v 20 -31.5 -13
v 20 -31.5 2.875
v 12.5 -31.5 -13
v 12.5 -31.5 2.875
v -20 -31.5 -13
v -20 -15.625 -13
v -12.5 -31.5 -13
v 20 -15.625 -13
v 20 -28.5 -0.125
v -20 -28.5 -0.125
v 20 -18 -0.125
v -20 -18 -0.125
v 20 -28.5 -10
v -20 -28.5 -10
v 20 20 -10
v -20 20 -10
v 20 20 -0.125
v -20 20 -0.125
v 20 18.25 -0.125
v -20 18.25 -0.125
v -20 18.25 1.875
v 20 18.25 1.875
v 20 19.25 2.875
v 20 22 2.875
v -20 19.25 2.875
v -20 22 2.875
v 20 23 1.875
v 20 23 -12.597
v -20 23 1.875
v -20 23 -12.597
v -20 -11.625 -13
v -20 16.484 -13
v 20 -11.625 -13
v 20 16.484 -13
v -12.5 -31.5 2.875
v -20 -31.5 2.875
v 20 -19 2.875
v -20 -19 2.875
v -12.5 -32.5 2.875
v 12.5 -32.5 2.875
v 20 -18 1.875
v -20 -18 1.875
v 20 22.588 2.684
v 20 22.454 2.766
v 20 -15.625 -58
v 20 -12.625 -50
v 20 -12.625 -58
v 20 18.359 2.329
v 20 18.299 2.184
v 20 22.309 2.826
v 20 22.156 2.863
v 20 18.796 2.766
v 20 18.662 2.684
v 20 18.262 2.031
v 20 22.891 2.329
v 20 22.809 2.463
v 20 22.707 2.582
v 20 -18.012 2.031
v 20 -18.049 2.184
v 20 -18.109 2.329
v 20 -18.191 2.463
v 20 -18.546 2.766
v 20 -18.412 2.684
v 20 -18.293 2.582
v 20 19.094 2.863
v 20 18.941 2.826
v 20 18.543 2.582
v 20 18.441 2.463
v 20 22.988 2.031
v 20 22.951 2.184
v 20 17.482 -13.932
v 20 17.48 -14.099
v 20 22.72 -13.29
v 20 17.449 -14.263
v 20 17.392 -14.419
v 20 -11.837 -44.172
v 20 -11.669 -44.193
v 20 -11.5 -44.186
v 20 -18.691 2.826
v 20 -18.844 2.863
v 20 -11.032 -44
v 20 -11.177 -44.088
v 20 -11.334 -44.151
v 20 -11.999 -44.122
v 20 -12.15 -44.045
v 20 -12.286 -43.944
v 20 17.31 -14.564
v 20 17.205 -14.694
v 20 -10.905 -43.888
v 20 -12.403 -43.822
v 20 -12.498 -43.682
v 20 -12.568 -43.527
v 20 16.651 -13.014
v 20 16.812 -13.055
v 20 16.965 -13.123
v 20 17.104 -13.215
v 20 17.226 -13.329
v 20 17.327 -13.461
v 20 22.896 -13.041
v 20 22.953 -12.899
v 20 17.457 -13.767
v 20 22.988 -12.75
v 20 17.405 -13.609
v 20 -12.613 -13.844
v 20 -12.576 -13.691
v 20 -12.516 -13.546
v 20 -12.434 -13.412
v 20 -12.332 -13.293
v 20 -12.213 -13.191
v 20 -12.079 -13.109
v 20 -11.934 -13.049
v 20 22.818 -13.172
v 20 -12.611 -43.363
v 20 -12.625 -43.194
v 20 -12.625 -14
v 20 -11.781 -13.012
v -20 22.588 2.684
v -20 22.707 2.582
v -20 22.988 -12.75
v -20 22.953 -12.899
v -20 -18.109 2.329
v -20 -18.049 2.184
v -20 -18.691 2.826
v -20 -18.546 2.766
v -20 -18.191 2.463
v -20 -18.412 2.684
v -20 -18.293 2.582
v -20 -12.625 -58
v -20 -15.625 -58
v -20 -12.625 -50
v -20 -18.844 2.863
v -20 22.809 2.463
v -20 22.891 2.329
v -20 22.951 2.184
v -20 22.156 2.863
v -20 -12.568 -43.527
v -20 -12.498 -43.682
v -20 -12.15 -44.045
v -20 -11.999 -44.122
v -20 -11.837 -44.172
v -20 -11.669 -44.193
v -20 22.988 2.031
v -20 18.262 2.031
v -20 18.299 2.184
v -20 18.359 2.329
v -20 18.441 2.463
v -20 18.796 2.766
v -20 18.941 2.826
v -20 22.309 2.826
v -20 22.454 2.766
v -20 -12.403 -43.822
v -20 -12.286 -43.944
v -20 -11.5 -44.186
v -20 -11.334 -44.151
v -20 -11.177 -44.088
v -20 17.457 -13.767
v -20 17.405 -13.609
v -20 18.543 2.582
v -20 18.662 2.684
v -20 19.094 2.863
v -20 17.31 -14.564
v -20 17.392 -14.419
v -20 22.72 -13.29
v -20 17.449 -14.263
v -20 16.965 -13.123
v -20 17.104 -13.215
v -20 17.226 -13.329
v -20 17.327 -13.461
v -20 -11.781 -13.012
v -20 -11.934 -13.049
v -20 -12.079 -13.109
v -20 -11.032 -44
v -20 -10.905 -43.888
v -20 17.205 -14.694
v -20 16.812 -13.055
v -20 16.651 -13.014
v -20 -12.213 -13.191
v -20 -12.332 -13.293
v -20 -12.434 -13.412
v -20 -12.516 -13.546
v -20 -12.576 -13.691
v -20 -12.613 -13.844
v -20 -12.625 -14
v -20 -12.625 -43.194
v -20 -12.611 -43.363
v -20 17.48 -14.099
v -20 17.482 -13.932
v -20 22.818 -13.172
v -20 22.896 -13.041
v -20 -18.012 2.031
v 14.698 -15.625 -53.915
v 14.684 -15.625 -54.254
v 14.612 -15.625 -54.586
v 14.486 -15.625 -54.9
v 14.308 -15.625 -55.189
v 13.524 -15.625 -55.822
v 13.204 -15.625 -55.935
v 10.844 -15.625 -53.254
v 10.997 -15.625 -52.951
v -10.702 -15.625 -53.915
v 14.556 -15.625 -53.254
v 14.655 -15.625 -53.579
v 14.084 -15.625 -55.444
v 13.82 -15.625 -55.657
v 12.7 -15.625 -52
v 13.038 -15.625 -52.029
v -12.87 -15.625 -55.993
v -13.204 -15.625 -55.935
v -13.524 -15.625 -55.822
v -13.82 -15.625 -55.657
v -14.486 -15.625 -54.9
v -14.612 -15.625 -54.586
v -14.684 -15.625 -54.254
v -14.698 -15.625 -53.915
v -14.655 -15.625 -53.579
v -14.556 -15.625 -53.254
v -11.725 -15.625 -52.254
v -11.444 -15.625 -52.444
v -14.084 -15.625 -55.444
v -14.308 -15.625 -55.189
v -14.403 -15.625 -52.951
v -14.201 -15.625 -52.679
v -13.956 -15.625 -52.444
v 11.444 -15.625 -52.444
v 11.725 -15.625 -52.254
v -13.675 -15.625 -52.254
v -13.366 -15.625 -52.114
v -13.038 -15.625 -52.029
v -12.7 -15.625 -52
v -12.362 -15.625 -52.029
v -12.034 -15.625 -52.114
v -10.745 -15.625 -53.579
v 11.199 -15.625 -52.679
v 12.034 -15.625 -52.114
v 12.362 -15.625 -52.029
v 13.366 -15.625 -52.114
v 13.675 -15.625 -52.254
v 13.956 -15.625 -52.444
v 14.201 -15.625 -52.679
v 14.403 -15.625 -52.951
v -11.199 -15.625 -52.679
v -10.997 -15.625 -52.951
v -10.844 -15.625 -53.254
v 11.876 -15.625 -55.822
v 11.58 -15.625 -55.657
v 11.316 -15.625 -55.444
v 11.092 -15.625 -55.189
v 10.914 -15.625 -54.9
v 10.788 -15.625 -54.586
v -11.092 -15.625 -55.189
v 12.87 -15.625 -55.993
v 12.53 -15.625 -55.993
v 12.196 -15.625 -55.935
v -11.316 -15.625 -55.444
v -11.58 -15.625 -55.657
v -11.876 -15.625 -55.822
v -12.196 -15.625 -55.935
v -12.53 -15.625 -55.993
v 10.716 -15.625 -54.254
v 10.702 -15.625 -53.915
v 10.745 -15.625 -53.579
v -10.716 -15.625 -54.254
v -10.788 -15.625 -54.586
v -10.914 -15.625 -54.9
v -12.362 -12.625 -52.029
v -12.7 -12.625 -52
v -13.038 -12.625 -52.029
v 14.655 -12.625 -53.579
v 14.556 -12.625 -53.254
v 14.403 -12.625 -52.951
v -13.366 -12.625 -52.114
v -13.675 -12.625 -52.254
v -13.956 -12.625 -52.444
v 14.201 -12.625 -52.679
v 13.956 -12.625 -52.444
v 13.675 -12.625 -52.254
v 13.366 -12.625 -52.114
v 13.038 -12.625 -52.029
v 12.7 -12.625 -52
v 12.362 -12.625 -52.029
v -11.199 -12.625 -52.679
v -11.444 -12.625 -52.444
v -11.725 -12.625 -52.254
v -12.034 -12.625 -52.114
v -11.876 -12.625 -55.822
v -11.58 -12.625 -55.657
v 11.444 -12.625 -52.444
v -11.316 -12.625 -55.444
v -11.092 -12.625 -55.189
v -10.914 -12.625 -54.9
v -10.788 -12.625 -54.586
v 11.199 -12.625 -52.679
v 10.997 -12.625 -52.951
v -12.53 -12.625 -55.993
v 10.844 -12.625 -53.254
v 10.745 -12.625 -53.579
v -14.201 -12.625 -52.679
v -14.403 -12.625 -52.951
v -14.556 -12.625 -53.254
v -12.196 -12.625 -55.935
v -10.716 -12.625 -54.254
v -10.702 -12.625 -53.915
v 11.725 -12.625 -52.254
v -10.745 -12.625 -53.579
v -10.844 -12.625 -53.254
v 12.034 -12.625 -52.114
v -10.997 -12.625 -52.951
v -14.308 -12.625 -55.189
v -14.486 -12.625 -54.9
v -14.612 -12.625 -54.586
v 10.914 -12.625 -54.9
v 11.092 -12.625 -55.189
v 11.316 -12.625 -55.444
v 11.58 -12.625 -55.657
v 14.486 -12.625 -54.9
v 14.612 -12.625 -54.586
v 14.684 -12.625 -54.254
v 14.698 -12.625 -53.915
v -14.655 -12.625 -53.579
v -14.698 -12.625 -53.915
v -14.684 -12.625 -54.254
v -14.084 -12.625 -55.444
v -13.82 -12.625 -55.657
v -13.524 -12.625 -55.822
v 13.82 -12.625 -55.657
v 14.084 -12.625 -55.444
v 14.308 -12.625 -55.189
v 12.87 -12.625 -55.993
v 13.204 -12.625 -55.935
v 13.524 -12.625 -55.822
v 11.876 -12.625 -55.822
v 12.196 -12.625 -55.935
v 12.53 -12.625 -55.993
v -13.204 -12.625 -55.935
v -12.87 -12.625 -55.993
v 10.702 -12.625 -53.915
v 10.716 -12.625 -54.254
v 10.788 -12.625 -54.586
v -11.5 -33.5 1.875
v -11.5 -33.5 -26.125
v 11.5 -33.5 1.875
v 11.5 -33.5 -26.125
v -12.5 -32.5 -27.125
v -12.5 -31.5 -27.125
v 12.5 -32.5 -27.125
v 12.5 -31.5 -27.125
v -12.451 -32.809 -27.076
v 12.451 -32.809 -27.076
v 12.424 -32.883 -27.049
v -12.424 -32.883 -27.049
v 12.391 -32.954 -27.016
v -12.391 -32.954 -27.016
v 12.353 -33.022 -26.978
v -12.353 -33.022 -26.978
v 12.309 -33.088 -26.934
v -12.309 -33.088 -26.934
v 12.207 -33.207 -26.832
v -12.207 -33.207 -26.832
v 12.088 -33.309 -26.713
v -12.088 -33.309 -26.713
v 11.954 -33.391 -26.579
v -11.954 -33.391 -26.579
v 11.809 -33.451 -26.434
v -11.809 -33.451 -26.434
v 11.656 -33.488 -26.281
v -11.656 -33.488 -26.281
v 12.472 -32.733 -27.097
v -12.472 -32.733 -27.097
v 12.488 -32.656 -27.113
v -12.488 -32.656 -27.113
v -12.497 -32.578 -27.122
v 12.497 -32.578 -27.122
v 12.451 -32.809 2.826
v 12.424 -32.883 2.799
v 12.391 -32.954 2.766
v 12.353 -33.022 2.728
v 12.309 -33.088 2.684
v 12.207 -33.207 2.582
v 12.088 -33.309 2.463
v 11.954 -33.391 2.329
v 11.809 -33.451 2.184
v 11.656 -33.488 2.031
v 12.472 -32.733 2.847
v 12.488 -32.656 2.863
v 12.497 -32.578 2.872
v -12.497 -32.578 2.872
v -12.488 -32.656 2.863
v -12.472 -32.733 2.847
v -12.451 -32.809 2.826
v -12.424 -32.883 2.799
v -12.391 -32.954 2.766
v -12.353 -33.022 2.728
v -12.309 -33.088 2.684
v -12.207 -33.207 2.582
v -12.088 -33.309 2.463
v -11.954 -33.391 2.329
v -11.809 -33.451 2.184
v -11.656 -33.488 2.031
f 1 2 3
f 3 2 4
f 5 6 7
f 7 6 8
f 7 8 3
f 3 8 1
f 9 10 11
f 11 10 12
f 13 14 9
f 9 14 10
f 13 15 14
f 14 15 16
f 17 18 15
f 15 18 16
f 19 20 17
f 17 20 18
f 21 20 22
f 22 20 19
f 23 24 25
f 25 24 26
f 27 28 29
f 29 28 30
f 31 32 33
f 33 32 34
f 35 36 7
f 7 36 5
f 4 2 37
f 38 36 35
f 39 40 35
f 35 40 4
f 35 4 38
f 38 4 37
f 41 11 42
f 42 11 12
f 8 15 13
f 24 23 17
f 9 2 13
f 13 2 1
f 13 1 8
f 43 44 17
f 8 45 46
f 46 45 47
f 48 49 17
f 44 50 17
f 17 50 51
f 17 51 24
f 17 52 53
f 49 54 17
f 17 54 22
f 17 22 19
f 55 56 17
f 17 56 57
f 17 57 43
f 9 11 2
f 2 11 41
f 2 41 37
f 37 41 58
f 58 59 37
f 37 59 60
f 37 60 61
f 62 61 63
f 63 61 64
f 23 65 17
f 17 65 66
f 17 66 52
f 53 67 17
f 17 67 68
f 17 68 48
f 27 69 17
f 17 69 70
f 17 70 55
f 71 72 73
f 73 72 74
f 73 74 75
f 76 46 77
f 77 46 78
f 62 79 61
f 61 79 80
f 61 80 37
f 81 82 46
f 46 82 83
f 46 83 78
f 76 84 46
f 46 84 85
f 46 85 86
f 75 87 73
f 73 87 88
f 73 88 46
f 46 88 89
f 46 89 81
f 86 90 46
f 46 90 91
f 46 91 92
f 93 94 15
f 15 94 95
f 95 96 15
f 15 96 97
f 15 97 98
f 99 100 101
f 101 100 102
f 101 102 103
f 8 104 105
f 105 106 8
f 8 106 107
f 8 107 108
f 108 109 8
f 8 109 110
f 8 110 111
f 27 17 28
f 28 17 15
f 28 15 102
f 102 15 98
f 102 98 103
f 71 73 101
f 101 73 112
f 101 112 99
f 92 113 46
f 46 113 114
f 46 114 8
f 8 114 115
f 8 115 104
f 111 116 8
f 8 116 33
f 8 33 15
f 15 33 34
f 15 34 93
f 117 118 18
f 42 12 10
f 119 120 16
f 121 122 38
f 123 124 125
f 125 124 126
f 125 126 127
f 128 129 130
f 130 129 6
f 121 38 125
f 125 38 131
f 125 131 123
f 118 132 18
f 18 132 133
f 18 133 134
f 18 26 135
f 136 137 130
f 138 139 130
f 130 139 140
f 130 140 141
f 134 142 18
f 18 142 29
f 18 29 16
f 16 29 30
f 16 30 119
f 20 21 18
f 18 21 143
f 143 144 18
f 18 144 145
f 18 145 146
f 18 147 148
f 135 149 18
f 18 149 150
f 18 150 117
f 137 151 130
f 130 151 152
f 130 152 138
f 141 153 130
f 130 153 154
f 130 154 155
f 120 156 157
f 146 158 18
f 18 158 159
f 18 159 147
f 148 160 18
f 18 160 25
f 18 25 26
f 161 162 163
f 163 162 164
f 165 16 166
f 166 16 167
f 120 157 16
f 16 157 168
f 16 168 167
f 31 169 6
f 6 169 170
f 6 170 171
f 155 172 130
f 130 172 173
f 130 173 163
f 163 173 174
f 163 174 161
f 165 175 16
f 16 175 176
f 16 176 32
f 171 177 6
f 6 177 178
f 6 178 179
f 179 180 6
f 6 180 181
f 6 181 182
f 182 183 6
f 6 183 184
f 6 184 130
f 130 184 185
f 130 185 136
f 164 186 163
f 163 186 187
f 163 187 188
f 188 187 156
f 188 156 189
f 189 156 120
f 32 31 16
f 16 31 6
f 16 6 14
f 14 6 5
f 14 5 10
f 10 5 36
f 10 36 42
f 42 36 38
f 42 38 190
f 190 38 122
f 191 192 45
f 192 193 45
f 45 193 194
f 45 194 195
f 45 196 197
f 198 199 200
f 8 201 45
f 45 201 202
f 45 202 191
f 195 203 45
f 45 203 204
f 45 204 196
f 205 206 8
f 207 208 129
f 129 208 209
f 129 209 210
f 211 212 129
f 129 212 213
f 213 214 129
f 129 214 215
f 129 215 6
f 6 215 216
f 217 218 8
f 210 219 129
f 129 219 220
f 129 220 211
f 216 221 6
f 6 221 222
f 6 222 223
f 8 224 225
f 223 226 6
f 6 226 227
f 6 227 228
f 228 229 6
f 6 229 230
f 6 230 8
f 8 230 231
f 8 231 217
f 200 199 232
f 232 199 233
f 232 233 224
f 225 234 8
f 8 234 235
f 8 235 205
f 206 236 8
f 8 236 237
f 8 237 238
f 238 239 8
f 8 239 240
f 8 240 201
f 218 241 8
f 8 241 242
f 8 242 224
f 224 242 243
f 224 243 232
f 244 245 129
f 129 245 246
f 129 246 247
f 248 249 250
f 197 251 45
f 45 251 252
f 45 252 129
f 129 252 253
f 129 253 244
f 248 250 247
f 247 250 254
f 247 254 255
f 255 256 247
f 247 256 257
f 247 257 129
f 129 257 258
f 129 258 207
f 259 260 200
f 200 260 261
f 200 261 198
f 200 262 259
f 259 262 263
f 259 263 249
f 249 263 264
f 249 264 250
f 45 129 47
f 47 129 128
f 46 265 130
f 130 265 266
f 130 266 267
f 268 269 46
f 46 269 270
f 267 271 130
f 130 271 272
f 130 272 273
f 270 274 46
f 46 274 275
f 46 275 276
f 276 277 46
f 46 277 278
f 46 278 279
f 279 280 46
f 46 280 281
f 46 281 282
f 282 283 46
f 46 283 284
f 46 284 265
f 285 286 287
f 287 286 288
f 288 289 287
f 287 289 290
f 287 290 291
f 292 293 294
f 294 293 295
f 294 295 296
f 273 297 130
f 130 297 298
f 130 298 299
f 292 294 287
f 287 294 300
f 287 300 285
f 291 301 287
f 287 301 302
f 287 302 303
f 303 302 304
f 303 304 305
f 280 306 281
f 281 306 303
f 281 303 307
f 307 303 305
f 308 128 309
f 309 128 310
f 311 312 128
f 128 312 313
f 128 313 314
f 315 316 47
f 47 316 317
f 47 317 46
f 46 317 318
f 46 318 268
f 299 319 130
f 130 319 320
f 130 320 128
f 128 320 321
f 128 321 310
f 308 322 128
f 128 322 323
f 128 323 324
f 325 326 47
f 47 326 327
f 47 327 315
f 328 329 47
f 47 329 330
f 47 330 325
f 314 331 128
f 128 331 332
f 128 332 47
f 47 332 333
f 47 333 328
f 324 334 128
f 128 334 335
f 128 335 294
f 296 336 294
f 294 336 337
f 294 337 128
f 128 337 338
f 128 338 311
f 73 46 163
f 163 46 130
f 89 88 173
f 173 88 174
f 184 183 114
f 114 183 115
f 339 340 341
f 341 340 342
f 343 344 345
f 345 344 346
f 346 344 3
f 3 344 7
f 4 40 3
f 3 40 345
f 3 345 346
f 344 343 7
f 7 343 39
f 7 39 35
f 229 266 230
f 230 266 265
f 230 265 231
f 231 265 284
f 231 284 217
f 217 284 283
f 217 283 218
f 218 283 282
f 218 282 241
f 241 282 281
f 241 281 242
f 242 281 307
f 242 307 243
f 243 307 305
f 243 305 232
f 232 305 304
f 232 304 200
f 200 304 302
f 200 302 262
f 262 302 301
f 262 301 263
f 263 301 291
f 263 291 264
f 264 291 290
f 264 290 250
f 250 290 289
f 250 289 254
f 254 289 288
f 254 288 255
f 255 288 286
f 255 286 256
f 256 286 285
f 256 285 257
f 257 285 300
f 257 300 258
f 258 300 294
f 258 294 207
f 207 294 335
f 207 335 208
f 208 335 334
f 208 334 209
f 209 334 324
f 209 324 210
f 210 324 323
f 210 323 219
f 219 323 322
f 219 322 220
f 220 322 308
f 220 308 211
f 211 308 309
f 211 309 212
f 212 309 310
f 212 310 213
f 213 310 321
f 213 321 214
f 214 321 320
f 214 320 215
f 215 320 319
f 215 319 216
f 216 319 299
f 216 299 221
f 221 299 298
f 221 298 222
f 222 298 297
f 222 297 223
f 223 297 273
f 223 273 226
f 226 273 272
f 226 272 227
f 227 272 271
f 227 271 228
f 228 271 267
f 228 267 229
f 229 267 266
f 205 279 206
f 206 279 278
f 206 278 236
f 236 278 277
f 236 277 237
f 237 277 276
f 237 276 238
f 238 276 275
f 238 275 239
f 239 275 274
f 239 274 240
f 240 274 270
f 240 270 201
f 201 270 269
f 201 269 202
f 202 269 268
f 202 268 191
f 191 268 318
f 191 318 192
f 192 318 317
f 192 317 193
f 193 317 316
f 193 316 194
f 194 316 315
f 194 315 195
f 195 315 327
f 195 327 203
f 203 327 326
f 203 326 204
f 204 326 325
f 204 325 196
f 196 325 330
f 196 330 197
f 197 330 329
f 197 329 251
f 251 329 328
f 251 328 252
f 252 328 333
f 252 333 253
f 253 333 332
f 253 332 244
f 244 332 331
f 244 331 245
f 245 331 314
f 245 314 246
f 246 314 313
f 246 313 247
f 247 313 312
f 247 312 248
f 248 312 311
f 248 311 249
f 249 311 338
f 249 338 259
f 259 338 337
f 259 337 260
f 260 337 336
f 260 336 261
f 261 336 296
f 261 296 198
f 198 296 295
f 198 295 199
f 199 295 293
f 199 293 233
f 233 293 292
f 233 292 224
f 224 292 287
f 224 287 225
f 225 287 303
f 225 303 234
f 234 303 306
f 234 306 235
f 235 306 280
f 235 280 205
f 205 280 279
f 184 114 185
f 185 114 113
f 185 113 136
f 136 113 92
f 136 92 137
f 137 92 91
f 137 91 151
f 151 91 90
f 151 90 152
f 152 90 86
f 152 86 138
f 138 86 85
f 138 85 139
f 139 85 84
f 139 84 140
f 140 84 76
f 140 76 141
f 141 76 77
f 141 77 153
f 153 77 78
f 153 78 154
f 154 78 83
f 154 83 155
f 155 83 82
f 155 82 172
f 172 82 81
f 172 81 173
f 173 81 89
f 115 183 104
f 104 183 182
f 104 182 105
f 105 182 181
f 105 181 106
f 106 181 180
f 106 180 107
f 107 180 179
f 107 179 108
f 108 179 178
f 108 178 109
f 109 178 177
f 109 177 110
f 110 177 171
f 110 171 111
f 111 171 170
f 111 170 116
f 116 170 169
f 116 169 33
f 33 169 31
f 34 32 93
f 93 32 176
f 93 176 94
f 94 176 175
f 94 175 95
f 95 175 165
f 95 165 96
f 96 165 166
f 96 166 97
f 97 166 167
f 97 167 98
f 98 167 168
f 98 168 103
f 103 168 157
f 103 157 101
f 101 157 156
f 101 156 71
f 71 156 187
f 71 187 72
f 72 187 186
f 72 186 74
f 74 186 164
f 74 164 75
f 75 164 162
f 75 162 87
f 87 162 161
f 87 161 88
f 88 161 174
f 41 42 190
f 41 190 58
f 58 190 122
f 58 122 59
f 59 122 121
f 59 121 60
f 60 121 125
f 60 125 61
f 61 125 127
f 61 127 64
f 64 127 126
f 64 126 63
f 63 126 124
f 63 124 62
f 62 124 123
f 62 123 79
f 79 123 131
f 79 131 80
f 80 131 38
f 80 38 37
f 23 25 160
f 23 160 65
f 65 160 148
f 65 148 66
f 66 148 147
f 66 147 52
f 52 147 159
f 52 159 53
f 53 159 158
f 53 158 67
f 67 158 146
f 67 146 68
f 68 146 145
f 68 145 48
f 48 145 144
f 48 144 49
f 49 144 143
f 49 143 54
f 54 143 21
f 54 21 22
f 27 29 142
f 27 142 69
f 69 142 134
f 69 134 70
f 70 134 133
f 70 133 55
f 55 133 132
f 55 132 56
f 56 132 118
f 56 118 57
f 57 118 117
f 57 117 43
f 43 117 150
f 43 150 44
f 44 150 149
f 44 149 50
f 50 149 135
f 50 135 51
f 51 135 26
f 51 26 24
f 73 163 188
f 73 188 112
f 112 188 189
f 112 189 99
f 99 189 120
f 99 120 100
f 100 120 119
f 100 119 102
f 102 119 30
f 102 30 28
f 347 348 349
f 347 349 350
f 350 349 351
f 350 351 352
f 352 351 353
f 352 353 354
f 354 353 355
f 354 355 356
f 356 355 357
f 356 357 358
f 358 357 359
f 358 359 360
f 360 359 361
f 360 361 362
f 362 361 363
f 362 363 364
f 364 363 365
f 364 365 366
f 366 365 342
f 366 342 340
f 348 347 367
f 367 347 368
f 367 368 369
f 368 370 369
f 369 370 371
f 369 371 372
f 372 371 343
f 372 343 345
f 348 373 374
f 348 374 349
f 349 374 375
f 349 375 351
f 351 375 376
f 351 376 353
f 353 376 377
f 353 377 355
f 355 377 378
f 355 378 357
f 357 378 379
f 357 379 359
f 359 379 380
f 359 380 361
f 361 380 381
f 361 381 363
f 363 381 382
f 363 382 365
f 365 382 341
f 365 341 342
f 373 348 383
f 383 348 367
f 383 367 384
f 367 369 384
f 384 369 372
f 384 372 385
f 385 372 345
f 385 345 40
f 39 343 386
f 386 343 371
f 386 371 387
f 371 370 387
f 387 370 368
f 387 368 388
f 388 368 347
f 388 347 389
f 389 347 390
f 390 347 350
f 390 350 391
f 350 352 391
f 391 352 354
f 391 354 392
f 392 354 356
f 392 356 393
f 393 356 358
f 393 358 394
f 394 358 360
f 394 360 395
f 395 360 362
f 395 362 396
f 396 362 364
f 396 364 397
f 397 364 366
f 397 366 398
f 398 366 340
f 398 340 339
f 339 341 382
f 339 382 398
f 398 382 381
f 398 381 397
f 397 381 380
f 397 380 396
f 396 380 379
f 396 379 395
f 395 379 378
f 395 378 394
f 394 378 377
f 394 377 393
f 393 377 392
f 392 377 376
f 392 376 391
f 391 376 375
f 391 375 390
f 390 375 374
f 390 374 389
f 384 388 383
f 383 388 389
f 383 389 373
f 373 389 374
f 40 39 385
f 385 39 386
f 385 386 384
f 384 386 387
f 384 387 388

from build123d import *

# Parameters (mm, degrees)
SKETCH1_W                       = 36
SKETCH1_H                       = 36
BOSS_EXTRUDE1_DEPTH             = 13.5
SKETCH1_3_W                     = 40
SKETCH1_3_H                     = 48.5
BOSS_EXTRUDE2_DEPTH             = 10
FILLET1_R                       = 3.5
FILLET2_R                       = 3.5
FILLET3_R                       = 1
FILLET4_R                       = 1
FILLET5_R                       = 1
BOSS_EXTRUDE3_REACH             = 39.343
BOSS_EXTRUDE3_DIRECTION_2_REACH = 39.343
BOSS_EXTRUDE4_REACH             = 41.68
BOSS_EXTRUDE4_DIRECTION_2_REACH = 41.68
BOSS_EXTRUDE5_DEPTH             = 12.5
SKETCH9_R                       = 2
CUT_EXTRUDE3_DEPTH              = 71.944630699
FILLET6_R                       = 1
FILLET7_R                       = 1


with BuildPart() as part:
    # Sketch1 → Boss-Extrude1 (new body)
    with BuildSketch(Plane.XY):
        Rectangle(SKETCH1_W, SKETCH1_H)
    extrude(amount=BOSS_EXTRUDE1_DEPTH)

    # Fillet2
    fillet2_edges = [part.edges().sort_by_distance(p)[0] for p in [
        (18, 18, 6.75),
        (18, -18, 6.75),
        (-18, -18, 6.75),
        (-18, 18, 6.75),
    ]]
    fillet(fillet2_edges, radius=FILLET2_R)

    # Fillet5
    fillet5_edges = [part.edges().sort_by_distance(p)[0] for p in [
        (-16.974873734, 16.974873734, 13.5),
        (0, 18, 13.5),
        (16.974873734, 16.974873734, 13.5),
        (18, 0, 13.5),
        (16.974873734, -16.974873734, 13.5),
        (0, -18, 13.5),
        (-16.974873734, -16.974873734, 13.5),
        (-18, 0, 13.5),
    ]]
    fillet(fillet5_edges, radius=FILLET5_R)


with BuildPart() as body_2:
    # Sketch1<3> → Boss-Extrude2 (new body)
    with BuildSketch(Plane.XY):
        with Locations((0, -4.25)):
            Rectangle(SKETCH1_3_W, SKETCH1_3_H)
    extrude(amount=-BOSS_EXTRUDE2_DEPTH)

    # Fillet1
    fillet1_edges = [body_2.edges().sort_by_distance(p)[0] for p in [
        (20, 20, -5),
        (-20, -28.5, -5),
        (20, -28.5, -5),
        (-20, 20, -5),
    ]]
    fillet(fillet1_edges, radius=FILLET1_R)

    # Fillet3
    fillet3_edges = [body_2.edges().sort_by_distance(p)[0] for p in [
        (-18.974873734, 18.974873734, 0),
        (0, 20, 0),
        (18.974873734, 18.974873734, 0),
        (20, -4.25, 0),
        (18.974873734, -27.474873734, 0),
        (0, -28.5, 0),
        (-18.974873734, -27.474873734, 0),
        (-20, -4.25, 0),
    ]]
    fillet(fillet3_edges, radius=FILLET3_R)

    # Fillet4
    fillet4_edges = [body_2.edges().sort_by_distance(p)[0] for p in [
        (-18.974873734, 18.974873734, -10),
        (-20, -4.25, -10),
        (-18.974873734, -27.474873734, -10),
        (0, -28.5, -10),
        (18.974873734, -27.474873734, -10),
        (20, -4.25, -10),
        (18.974873734, 18.974873734, -10),
        (0, 20, -10),
    ]]
    fillet(fillet4_edges, radius=FILLET4_R)


with BuildPart() as body_3:

    # Boss-Extrude3: up to this face of the body (flat: up to its plane)
    boss_extrude3_end = Plane(body_2.part.faces().sort_by_distance((20, -4.25, -5))[0])
    # Sketch2 → Boss-Extrude3 (new, up to the picked face)
    with BuildSketch(Plane(origin=(0, 0, 0), x_dir=(0, 0, -1), z_dir=(1, 0, 0)), mode=Mode.PRIVATE) as boss_extrude3_sk1:
        Polygon((-2.875, -18), (-2.875, -31.5), (13, -31.5), (13, 20), (13, 23), (-2.875, 23), (-2.875, 18.25), (0.125, 18.25), (0.125, 20), (10, 20), (10, -28.5), (0.125, -28.5), (0.125, -18), align=None)
    boss_extrude3_tool1 = split(extrude(boss_extrude3_sk1.sketch, amount=BOSS_EXTRUDE3_REACH, mode=Mode.PRIVATE), bisect_by=boss_extrude3_end, keep=Keep.BOTH, mode=Mode.PRIVATE)
    add(boss_extrude3_tool1.solids().sort_by(Axis((0, -24.75, 2.30735), (1, 0, 0)))[0])


    # Boss-Extrude3 direction 2: up to this face of the body (flat: up to its plane)
    boss_extrude3_direction_2_end = Plane(body_2.part.faces().sort_by_distance((-20, -4.25, -5))[0])
    # Sketch2 → Boss-Extrude3 direction 2 (add, up to the picked face)
    with BuildSketch(Plane(origin=(0, 0, 0), x_dir=(0, 0, -1), z_dir=(1, 0, 0)), mode=Mode.PRIVATE) as boss_extrude3_direction_2_sk1:
        Polygon((-2.875, -18), (-2.875, -31.5), (13, -31.5), (13, 20), (13, 23), (-2.875, 23), (-2.875, 18.25), (0.125, 18.25), (0.125, 20), (10, 20), (10, -28.5), (0.125, -28.5), (0.125, -18), align=None)
    boss_extrude3_direction_2_tool1 = split(extrude(boss_extrude3_direction_2_sk1.sketch, amount=-BOSS_EXTRUDE3_DIRECTION_2_REACH, mode=Mode.PRIVATE), bisect_by=boss_extrude3_direction_2_end, keep=Keep.BOTH, mode=Mode.PRIVATE)
    add(boss_extrude3_direction_2_tool1.solids().sort_by(Axis((0, -24.75, 2.30735), (-1, 0, 0)))[0])


    # Boss-Extrude4: up to this face of the body (flat: up to its plane)
    boss_extrude4_end = Plane(body_2.part.faces().sort_by_distance((20, -4.25, -5))[0])
    # Sketch3 → Boss-Extrude4 (add, up to the picked face)
    with BuildSketch(Plane(origin=(0, 0, 0), x_dir=(0, 0, -1), z_dir=(1, 0, 0)), mode=Mode.PRIVATE) as boss_extrude4_sk1:
        Polygon((58, -15.625), (10, -15.625), (10, 23), (13, 23), (50, -12.625), (58, -12.625), align=None)
        Polygon((13, 18.835445964), (13, -12.625), (45.674708791, -12.625), align=None, mode=Mode.SUBTRACT)
    boss_extrude4_tool1 = split(extrude(boss_extrude4_sk1.sketch, amount=BOSS_EXTRUDE4_REACH, mode=Mode.PRIVATE), bisect_by=boss_extrude4_end, keep=Keep.BOTH, mode=Mode.PRIVATE)
    add(boss_extrude4_tool1.solids().sort_by(Axis((0, -15.008892, -34), (1, 0, 0)))[0])


    # Boss-Extrude4 direction 2: up to this face of the body (flat: up to its plane)
    boss_extrude4_direction_2_end = Plane(body_2.part.faces().sort_by_distance((-20, -4.25, -5))[0])
    # Sketch3 → Boss-Extrude4 direction 2 (add, up to the picked face)
    with BuildSketch(Plane(origin=(0, 0, 0), x_dir=(0, 0, -1), z_dir=(1, 0, 0)), mode=Mode.PRIVATE) as boss_extrude4_direction_2_sk1:
        Polygon((58, -15.625), (10, -15.625), (10, 23), (13, 23), (50, -12.625), (58, -12.625), align=None)
        Polygon((13, 18.835445964), (13, -12.625), (45.674708791, -12.625), align=None, mode=Mode.SUBTRACT)
    boss_extrude4_direction_2_tool1 = split(extrude(boss_extrude4_direction_2_sk1.sketch, amount=-BOSS_EXTRUDE4_DIRECTION_2_REACH, mode=Mode.PRIVATE), bisect_by=boss_extrude4_direction_2_end, keep=Keep.BOTH, mode=Mode.PRIVATE)
    add(boss_extrude4_direction_2_tool1.solids().sort_by(Axis((0, -15.008892, -34), (-1, 0, 0)))[0])

    # Sketch8 → Boss-Extrude5 (add, symmetric)
    with BuildSketch(Plane(origin=(0, 0, 0), x_dir=(0, 0, -1), z_dir=(1, 0, 0))):
        Polygon((-2.875, -31.5), (-2.875, -33.5), (27.125, -33.5), (27.125, -31.5), (13, -31.5), align=None)
    extrude(amount=BOSS_EXTRUDE5_DEPTH, both=True)

    # Sketch9 → Cut-Extrude3 (cut, through all)
    with BuildSketch(Plane(origin=(0, -12.625, 0), x_dir=(1, 0, 0), z_dir=(0, 1, 0))):
        with Locations((12.7, 54)):
            Circle(SKETCH9_R)
        with Locations((-12.7, 54)):
            Circle(SKETCH9_R)
    extrude(amount=-CUT_EXTRUDE3_DEPTH, mode=Mode.SUBTRACT)

    # Fillet6
    fillet6_edges = [body_3.edges().sort_by_distance(p)[0] for p in [
        (0, -12.625, -45.674708791),
        (0, -12.625, -13),
        (0, 18.835445964, -13),
        (0, -18, 2.875),
        (0, 18.25, 2.875),
        (0, 23, 2.875),
        (0, 23, -13),
    ]]
    fillet(fillet6_edges, radius=FILLET6_R)

    # Fillet7
    fillet7_edges = [body_3.edges().sort_by_distance(p)[0] for p in [
        (0, -33.5, 2.875),
        (12.5, -33.5, -12.125),
        (0, -33.5, -27.125),
        (-12.5, -33.5, -12.125),
    ]]
    fillet(fillet7_edges, radius=FILLET7_R)


solid = body_3.part
